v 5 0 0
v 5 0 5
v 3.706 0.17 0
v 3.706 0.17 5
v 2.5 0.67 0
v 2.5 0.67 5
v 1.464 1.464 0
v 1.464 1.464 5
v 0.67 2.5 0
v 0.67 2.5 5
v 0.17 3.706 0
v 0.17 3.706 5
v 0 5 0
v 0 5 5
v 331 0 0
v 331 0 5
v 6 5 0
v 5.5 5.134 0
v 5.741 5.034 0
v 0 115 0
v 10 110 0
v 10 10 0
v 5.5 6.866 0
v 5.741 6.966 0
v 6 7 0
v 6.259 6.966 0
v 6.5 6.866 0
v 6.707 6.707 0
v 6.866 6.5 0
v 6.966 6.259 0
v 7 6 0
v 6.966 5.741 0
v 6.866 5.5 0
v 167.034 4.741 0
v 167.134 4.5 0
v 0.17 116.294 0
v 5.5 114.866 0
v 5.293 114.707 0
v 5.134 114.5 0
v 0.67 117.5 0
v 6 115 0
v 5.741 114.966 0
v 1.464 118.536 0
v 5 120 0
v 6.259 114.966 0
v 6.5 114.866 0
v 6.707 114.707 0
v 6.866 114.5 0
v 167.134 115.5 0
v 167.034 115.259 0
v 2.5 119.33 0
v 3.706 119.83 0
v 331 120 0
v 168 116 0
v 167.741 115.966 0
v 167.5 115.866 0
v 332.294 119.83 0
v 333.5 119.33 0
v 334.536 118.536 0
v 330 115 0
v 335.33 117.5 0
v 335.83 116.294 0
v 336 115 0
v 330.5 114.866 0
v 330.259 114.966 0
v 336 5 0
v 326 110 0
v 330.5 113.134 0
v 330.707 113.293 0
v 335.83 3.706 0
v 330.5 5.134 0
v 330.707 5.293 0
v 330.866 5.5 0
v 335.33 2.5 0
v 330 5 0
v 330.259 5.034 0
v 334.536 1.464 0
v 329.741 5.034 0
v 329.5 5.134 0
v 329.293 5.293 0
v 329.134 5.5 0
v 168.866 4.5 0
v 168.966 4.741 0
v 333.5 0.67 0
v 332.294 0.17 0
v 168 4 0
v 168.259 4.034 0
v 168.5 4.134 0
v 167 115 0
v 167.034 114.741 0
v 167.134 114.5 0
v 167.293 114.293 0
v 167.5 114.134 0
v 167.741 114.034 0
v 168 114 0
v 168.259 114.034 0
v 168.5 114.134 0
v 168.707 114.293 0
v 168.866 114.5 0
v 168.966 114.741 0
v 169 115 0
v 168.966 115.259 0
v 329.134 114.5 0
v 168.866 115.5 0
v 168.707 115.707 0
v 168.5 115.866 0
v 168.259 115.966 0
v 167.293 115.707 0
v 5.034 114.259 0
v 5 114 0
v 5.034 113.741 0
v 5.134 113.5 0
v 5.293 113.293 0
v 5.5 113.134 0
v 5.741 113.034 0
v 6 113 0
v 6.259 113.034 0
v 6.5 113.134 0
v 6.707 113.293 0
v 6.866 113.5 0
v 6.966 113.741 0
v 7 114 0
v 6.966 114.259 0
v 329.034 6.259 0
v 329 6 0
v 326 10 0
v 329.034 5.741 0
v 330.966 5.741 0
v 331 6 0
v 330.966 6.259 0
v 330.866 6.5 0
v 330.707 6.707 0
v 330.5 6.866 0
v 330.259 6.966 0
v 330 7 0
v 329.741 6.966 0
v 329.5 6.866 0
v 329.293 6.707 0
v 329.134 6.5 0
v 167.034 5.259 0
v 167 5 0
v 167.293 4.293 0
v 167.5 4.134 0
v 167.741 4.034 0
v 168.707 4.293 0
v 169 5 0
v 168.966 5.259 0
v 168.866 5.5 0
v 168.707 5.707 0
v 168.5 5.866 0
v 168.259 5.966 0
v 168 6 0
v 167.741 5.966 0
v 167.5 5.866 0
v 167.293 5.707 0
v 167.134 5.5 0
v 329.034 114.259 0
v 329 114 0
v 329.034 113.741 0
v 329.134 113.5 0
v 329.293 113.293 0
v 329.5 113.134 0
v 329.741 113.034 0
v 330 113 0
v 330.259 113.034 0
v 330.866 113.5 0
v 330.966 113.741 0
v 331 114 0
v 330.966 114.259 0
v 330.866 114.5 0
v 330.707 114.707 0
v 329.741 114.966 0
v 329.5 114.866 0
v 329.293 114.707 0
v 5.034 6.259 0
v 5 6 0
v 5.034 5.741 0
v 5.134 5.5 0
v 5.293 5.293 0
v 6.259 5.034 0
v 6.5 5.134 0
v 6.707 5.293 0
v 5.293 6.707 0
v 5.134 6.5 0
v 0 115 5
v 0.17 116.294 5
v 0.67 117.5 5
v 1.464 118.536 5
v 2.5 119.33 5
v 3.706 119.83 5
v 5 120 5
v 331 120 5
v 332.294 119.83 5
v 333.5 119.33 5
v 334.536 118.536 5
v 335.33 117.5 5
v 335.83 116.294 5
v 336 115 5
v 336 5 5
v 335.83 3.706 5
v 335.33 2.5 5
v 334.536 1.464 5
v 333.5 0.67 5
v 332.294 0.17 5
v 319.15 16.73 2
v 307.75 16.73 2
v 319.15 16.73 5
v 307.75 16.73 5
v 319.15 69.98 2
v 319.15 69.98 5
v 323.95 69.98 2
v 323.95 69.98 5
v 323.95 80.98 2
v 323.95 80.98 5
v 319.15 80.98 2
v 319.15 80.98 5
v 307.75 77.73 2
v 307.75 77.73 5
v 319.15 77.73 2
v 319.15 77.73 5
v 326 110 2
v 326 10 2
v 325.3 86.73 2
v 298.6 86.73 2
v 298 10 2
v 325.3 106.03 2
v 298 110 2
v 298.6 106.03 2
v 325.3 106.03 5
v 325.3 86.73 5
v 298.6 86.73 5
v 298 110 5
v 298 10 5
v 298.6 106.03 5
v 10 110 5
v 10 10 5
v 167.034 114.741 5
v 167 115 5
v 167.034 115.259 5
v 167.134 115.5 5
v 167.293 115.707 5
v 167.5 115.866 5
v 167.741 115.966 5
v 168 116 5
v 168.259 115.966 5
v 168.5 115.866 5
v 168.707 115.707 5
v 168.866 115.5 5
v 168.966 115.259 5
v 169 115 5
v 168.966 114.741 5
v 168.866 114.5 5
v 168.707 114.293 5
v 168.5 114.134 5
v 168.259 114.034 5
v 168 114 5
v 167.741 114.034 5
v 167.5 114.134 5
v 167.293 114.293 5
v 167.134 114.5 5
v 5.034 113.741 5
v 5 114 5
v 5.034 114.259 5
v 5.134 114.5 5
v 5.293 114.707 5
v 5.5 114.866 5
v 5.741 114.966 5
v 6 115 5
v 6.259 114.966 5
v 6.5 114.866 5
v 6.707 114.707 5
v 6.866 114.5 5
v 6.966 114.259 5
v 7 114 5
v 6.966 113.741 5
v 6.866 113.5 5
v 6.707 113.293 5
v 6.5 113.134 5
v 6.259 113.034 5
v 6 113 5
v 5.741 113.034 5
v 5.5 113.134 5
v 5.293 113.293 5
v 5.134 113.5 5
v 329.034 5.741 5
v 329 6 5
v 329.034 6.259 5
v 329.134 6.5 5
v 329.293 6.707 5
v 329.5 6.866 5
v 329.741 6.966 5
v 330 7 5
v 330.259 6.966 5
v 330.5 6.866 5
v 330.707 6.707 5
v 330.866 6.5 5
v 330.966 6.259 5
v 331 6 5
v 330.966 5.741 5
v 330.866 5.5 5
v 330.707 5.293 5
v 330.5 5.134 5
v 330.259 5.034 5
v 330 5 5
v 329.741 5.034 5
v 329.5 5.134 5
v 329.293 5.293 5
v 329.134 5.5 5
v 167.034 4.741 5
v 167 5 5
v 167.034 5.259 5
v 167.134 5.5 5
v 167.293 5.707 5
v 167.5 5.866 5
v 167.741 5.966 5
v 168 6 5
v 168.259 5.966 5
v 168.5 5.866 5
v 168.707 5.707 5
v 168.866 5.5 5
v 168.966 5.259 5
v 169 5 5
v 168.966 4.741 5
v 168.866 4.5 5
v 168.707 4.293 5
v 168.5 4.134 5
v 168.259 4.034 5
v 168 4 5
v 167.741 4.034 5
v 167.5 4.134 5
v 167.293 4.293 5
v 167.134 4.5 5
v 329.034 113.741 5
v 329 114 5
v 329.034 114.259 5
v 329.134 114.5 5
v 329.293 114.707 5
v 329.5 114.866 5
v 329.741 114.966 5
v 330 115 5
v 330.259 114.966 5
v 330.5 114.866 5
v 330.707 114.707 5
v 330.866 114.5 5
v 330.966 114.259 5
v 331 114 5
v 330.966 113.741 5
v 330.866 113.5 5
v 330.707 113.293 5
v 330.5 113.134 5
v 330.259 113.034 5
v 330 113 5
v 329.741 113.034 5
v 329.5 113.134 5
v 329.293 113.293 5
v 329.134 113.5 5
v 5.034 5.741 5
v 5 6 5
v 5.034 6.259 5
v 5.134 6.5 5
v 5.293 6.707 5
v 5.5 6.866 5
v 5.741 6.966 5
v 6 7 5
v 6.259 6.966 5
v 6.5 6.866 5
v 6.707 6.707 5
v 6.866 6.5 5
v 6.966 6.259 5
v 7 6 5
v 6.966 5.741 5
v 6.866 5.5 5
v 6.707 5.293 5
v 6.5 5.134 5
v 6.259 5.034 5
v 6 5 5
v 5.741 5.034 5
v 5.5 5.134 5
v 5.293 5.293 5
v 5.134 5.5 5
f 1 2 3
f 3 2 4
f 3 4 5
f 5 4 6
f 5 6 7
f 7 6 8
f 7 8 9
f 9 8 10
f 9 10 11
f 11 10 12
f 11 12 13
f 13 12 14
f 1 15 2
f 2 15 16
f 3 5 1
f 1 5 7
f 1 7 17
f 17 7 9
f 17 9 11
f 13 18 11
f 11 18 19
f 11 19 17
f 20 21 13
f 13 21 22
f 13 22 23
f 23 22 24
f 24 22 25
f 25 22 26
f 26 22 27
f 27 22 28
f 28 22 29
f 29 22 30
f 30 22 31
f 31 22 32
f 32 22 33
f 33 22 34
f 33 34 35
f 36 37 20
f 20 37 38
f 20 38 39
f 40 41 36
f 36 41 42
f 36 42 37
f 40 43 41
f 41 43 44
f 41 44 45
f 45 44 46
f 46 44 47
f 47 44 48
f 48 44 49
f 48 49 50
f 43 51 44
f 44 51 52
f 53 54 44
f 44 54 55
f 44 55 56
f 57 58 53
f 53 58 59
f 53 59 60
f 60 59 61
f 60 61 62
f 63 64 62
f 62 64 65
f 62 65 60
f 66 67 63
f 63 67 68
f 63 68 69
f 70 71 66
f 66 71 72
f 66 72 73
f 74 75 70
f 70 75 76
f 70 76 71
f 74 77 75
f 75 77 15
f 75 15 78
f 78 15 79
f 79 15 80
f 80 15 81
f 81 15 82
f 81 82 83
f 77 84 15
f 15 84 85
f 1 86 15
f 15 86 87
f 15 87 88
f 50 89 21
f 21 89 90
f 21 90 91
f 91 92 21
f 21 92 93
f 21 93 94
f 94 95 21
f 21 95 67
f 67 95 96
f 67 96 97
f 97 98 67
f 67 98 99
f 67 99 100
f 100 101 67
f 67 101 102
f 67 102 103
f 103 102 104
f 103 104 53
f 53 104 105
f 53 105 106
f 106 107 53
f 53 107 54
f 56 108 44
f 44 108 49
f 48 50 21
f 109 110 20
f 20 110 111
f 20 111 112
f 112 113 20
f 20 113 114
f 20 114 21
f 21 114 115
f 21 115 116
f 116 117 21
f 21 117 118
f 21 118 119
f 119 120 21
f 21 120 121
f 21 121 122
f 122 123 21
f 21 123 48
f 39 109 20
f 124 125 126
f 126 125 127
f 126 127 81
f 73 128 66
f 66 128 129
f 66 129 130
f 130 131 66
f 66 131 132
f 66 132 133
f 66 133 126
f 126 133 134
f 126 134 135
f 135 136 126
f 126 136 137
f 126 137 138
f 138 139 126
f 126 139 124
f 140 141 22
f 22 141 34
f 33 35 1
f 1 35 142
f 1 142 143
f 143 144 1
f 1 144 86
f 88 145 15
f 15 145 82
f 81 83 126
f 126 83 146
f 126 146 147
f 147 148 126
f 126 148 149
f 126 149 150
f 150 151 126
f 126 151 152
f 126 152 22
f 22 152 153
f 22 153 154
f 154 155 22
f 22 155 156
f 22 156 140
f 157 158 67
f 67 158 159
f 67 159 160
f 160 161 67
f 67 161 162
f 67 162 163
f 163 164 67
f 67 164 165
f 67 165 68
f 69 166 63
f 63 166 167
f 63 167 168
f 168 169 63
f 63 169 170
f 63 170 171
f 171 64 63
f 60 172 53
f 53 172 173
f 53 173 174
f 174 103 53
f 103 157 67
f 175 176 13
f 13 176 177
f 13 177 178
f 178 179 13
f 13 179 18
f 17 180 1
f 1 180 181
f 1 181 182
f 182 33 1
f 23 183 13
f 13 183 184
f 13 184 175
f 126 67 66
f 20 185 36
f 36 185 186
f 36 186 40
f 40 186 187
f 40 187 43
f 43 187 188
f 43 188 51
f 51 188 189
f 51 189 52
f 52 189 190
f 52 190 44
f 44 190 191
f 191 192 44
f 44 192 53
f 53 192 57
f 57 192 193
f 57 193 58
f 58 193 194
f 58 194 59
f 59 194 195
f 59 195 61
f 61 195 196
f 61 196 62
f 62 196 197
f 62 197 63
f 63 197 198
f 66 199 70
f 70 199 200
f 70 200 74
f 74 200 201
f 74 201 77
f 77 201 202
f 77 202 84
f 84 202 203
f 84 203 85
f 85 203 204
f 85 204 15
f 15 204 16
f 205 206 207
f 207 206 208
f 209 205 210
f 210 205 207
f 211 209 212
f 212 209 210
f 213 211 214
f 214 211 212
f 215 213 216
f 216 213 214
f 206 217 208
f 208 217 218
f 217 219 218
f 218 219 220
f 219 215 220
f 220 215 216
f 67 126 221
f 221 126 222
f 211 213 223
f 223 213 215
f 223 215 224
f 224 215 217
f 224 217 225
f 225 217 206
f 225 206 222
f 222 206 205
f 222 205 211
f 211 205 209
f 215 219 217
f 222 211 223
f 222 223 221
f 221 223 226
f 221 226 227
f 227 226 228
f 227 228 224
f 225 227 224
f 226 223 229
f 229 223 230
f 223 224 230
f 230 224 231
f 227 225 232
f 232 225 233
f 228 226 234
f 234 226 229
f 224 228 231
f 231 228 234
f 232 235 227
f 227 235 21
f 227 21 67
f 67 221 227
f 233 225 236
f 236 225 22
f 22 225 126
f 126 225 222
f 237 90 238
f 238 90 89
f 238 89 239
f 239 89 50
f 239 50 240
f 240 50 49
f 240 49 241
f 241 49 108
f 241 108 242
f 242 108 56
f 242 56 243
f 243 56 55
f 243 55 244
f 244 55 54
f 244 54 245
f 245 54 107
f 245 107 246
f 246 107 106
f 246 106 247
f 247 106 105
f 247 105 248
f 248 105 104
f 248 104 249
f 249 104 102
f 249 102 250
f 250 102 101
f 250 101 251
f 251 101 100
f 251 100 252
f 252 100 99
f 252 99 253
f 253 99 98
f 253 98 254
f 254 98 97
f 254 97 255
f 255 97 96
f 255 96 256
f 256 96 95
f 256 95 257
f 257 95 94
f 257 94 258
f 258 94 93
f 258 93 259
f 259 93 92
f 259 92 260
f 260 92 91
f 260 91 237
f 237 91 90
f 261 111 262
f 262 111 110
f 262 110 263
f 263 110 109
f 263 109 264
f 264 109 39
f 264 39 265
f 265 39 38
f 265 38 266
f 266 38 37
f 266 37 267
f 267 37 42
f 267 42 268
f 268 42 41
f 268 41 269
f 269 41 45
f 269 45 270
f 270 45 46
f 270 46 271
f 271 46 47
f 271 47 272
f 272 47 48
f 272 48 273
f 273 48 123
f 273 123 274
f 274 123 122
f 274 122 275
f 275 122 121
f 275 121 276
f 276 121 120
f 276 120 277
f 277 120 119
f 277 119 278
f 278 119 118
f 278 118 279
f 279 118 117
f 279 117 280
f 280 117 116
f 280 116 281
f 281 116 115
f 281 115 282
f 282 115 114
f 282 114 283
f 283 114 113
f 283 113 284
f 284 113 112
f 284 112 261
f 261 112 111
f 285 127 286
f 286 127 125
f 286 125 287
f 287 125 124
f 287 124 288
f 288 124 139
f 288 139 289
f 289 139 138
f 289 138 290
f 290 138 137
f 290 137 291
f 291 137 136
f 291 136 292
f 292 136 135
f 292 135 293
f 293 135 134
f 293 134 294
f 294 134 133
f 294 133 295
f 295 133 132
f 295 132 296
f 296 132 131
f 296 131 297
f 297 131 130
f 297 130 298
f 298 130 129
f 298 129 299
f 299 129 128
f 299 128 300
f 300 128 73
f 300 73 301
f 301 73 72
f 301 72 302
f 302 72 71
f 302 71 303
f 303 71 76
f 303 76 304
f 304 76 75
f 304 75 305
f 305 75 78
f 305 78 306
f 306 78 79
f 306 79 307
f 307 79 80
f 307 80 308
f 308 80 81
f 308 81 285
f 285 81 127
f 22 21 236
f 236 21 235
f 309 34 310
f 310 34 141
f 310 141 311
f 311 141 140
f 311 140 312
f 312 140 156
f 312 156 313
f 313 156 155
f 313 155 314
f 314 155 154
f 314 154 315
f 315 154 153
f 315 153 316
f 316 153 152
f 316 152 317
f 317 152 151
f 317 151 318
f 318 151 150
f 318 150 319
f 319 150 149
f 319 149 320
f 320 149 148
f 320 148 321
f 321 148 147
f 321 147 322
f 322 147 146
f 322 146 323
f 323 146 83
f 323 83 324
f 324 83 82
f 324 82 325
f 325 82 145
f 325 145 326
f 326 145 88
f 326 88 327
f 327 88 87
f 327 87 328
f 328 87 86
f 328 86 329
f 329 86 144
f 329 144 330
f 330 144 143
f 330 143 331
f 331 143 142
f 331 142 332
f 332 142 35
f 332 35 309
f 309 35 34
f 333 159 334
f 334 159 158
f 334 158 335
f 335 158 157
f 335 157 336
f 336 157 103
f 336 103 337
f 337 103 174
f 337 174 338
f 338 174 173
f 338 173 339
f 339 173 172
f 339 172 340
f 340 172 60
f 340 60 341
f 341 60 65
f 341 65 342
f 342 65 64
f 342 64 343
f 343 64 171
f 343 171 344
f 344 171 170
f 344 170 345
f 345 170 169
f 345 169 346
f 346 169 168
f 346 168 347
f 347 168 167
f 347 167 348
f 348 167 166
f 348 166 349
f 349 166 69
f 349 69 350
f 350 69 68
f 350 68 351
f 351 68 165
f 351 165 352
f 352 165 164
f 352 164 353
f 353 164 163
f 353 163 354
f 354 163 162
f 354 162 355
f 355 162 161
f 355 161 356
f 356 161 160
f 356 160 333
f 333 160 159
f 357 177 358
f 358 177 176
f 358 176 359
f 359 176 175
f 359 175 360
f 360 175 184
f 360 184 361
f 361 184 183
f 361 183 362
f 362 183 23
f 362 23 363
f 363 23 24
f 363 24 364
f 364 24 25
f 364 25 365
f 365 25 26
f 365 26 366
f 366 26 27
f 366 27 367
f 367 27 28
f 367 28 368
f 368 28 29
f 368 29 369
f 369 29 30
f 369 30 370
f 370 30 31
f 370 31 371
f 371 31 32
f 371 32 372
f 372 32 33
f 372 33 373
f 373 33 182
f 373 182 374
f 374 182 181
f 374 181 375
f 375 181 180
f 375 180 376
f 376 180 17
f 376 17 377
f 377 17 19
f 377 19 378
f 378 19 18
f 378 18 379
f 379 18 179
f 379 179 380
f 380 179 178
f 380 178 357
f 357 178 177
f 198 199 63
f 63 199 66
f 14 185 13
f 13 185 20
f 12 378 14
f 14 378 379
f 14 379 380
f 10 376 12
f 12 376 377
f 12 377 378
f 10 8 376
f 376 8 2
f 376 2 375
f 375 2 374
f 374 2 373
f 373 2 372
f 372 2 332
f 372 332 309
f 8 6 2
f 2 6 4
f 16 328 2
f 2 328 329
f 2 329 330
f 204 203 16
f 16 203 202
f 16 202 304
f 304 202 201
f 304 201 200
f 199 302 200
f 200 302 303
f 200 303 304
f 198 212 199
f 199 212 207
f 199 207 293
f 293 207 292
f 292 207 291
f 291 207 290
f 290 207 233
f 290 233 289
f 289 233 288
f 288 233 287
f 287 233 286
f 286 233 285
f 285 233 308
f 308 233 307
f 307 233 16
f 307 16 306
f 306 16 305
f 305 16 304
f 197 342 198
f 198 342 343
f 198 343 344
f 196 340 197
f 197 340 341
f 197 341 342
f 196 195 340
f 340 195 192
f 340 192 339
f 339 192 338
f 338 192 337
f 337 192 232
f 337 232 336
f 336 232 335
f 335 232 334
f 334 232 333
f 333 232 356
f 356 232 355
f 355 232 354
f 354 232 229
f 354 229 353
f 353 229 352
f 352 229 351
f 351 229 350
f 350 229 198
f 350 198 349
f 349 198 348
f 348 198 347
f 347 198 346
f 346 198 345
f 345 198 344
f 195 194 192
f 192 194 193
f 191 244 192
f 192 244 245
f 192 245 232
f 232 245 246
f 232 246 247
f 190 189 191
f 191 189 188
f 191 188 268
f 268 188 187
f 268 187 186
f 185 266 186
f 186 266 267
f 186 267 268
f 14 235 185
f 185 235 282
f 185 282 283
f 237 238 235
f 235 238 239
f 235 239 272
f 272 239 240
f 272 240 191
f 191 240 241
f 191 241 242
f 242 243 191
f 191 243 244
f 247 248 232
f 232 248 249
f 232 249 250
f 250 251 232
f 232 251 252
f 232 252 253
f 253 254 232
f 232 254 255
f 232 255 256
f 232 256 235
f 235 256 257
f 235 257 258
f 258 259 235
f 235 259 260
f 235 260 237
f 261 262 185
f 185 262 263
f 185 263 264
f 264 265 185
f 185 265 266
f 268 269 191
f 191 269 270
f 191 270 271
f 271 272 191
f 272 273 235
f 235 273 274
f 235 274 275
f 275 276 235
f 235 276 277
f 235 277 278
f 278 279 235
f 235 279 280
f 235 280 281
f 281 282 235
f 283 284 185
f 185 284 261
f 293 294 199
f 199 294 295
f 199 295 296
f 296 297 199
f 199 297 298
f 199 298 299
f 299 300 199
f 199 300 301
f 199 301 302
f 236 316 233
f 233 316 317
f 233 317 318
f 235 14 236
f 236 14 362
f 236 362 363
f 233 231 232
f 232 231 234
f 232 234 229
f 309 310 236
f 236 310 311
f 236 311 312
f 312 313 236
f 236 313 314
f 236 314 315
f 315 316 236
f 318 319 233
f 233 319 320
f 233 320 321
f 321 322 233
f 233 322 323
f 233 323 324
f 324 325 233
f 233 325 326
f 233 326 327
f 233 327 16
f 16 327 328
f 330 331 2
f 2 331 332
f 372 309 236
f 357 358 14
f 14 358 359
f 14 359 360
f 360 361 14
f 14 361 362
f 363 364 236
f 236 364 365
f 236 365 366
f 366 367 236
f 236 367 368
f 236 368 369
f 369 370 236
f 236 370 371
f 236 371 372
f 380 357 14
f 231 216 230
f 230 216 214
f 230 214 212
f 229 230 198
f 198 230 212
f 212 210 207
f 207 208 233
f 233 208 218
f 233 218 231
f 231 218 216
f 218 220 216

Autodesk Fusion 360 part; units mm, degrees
sketch "Sketch1" plane through (0, 0, 0) normal (0, 0, 1) x (1, 0, 0)
  line L0 (0, 0) -> (336, 0)
  line L1 (336, 0) -> (336, 120)
  line L2 (336, 120) -> (0, 120)
  line L3 (0, 120) -> (0, 0)
  line L4 (10, 110) -> (326, 110)
  line L5 (326, 110) -> (326, 10)
  line L6 (326, 10) -> (10, 10)
  line L7 (10, 10) -> (10, 110)
  line L8 (298, 110) -> (298, 10)
  line L9 (298, 10) -> (326, 10)
  line L10 (326, 10) -> (326, 110)
  line L11 (298.6, 106.03) -> (325.3, 106.03)
  line L12 (325.3, 106.03) -> (325.3, 86.73)
  line L13 (325.3, 86.73) -> (298.6, 86.73)
  line L14 (298.6, 86.73) -> (298.6, 106.03)
  circle A0 centre (6, 114) radius 1
  circle A1 centre (330, 114) radius 1
  circle A2 centre (330, 6) radius 1
  circle A3 centre (6, 6) radius 1
  circle A4 centre (168, 5) radius 1
  circle A5 centre (168, 115) radius 1
  dimension "d1" = 120
  dimension "d2" = 336
  dimension "d3" = 10
  dimension "d4" = 10
  dimension "d5" = 10
  dimension "d6" = 10
  dimension "d7" = 28
  dimension "d8" = 19.3
  dimension "d9" = 0.7
  dimension "d10" = 26.7
  dimension "d11" = 3.97
  dimension "d16" = 2
  dimension "d17" = 6
  dimension "d18" = 6
  dimension "d19" = 2
  dimension "d20" = 6
  dimension "d21" = 6
  dimension "d22" = 2
  dimension "d23" = 6
  dimension "d24" = 6
  dimension "d25" = 2
  dimension "d26" = 6
  dimension "d27" = 6
  dimension "d28" = 2
  dimension "d29" = 168
  dimension "d30" = 2
  dimension "d31" = 168
sketch "Sketch4" plane through (0, 0, 0) normal (0, 0, 1) x (1, 0, 0)
  line L0 (319.15, 77.73) -> (307.75, 77.73)
  line L1 (307.75, 77.73) -> (307.75, 16.73)
  line L2 (307.75, 16.73) -> (319.15, 16.73)
  line L3 (319.15, 16.73) -> (319.15, 77.73)
  line L4 (319.15, 77.73) -> (319.15, 80.98)
  line L5 (319.15, 80.98) -> (323.95, 80.98)
  line L6 (323.95, 80.98) -> (323.95, 69.98)
  line L7 (323.95, 69.98) -> (319.15, 69.98)
  line L8 (319.15, 69.98) -> (319.15, 80.98)
  dimension "d50" = 11.4
  dimension "d51" = 61
  dimension "d52" = 3.25
  dimension "d53" = 4.8
  dimension "d54" = 11
extrude "Extrude3" add sketch "Sketch1" along normal blind 5 contours L0 L1 L2 L3
extrude "Extrude4" add sketch "Sketch1" along normal blind 5 contours L4 L5 L6 L8 L9 L10
extrude "Extrude5" cut sketch "Sketch1" along normal blind 2 contours L4 L5 L6 L8 L9 L10
extrude "Extrude6" cut sketch "Sketch4" along normal blind 5
fillet "Fillet5" radius 5 1 edges at (336, 0, 2.5)
fillet "Fillet6" radius 5 1 edges at (336, 120, 2.5)
fillet "Fillet7" radius 5 1 edges at (0, 120, 2.5)
fillet "Fillet8" radius 5 1 edges at (0, 0, 2.5)
extrude "Extrude1" [suppressed]
extrude "Extrude2" [suppressed]
fillet "Fillet1" [suppressed]
fillet "Fillet2" [suppressed]
fillet "Fillet3" [suppressed]
fillet "Fillet4" [suppressed]
